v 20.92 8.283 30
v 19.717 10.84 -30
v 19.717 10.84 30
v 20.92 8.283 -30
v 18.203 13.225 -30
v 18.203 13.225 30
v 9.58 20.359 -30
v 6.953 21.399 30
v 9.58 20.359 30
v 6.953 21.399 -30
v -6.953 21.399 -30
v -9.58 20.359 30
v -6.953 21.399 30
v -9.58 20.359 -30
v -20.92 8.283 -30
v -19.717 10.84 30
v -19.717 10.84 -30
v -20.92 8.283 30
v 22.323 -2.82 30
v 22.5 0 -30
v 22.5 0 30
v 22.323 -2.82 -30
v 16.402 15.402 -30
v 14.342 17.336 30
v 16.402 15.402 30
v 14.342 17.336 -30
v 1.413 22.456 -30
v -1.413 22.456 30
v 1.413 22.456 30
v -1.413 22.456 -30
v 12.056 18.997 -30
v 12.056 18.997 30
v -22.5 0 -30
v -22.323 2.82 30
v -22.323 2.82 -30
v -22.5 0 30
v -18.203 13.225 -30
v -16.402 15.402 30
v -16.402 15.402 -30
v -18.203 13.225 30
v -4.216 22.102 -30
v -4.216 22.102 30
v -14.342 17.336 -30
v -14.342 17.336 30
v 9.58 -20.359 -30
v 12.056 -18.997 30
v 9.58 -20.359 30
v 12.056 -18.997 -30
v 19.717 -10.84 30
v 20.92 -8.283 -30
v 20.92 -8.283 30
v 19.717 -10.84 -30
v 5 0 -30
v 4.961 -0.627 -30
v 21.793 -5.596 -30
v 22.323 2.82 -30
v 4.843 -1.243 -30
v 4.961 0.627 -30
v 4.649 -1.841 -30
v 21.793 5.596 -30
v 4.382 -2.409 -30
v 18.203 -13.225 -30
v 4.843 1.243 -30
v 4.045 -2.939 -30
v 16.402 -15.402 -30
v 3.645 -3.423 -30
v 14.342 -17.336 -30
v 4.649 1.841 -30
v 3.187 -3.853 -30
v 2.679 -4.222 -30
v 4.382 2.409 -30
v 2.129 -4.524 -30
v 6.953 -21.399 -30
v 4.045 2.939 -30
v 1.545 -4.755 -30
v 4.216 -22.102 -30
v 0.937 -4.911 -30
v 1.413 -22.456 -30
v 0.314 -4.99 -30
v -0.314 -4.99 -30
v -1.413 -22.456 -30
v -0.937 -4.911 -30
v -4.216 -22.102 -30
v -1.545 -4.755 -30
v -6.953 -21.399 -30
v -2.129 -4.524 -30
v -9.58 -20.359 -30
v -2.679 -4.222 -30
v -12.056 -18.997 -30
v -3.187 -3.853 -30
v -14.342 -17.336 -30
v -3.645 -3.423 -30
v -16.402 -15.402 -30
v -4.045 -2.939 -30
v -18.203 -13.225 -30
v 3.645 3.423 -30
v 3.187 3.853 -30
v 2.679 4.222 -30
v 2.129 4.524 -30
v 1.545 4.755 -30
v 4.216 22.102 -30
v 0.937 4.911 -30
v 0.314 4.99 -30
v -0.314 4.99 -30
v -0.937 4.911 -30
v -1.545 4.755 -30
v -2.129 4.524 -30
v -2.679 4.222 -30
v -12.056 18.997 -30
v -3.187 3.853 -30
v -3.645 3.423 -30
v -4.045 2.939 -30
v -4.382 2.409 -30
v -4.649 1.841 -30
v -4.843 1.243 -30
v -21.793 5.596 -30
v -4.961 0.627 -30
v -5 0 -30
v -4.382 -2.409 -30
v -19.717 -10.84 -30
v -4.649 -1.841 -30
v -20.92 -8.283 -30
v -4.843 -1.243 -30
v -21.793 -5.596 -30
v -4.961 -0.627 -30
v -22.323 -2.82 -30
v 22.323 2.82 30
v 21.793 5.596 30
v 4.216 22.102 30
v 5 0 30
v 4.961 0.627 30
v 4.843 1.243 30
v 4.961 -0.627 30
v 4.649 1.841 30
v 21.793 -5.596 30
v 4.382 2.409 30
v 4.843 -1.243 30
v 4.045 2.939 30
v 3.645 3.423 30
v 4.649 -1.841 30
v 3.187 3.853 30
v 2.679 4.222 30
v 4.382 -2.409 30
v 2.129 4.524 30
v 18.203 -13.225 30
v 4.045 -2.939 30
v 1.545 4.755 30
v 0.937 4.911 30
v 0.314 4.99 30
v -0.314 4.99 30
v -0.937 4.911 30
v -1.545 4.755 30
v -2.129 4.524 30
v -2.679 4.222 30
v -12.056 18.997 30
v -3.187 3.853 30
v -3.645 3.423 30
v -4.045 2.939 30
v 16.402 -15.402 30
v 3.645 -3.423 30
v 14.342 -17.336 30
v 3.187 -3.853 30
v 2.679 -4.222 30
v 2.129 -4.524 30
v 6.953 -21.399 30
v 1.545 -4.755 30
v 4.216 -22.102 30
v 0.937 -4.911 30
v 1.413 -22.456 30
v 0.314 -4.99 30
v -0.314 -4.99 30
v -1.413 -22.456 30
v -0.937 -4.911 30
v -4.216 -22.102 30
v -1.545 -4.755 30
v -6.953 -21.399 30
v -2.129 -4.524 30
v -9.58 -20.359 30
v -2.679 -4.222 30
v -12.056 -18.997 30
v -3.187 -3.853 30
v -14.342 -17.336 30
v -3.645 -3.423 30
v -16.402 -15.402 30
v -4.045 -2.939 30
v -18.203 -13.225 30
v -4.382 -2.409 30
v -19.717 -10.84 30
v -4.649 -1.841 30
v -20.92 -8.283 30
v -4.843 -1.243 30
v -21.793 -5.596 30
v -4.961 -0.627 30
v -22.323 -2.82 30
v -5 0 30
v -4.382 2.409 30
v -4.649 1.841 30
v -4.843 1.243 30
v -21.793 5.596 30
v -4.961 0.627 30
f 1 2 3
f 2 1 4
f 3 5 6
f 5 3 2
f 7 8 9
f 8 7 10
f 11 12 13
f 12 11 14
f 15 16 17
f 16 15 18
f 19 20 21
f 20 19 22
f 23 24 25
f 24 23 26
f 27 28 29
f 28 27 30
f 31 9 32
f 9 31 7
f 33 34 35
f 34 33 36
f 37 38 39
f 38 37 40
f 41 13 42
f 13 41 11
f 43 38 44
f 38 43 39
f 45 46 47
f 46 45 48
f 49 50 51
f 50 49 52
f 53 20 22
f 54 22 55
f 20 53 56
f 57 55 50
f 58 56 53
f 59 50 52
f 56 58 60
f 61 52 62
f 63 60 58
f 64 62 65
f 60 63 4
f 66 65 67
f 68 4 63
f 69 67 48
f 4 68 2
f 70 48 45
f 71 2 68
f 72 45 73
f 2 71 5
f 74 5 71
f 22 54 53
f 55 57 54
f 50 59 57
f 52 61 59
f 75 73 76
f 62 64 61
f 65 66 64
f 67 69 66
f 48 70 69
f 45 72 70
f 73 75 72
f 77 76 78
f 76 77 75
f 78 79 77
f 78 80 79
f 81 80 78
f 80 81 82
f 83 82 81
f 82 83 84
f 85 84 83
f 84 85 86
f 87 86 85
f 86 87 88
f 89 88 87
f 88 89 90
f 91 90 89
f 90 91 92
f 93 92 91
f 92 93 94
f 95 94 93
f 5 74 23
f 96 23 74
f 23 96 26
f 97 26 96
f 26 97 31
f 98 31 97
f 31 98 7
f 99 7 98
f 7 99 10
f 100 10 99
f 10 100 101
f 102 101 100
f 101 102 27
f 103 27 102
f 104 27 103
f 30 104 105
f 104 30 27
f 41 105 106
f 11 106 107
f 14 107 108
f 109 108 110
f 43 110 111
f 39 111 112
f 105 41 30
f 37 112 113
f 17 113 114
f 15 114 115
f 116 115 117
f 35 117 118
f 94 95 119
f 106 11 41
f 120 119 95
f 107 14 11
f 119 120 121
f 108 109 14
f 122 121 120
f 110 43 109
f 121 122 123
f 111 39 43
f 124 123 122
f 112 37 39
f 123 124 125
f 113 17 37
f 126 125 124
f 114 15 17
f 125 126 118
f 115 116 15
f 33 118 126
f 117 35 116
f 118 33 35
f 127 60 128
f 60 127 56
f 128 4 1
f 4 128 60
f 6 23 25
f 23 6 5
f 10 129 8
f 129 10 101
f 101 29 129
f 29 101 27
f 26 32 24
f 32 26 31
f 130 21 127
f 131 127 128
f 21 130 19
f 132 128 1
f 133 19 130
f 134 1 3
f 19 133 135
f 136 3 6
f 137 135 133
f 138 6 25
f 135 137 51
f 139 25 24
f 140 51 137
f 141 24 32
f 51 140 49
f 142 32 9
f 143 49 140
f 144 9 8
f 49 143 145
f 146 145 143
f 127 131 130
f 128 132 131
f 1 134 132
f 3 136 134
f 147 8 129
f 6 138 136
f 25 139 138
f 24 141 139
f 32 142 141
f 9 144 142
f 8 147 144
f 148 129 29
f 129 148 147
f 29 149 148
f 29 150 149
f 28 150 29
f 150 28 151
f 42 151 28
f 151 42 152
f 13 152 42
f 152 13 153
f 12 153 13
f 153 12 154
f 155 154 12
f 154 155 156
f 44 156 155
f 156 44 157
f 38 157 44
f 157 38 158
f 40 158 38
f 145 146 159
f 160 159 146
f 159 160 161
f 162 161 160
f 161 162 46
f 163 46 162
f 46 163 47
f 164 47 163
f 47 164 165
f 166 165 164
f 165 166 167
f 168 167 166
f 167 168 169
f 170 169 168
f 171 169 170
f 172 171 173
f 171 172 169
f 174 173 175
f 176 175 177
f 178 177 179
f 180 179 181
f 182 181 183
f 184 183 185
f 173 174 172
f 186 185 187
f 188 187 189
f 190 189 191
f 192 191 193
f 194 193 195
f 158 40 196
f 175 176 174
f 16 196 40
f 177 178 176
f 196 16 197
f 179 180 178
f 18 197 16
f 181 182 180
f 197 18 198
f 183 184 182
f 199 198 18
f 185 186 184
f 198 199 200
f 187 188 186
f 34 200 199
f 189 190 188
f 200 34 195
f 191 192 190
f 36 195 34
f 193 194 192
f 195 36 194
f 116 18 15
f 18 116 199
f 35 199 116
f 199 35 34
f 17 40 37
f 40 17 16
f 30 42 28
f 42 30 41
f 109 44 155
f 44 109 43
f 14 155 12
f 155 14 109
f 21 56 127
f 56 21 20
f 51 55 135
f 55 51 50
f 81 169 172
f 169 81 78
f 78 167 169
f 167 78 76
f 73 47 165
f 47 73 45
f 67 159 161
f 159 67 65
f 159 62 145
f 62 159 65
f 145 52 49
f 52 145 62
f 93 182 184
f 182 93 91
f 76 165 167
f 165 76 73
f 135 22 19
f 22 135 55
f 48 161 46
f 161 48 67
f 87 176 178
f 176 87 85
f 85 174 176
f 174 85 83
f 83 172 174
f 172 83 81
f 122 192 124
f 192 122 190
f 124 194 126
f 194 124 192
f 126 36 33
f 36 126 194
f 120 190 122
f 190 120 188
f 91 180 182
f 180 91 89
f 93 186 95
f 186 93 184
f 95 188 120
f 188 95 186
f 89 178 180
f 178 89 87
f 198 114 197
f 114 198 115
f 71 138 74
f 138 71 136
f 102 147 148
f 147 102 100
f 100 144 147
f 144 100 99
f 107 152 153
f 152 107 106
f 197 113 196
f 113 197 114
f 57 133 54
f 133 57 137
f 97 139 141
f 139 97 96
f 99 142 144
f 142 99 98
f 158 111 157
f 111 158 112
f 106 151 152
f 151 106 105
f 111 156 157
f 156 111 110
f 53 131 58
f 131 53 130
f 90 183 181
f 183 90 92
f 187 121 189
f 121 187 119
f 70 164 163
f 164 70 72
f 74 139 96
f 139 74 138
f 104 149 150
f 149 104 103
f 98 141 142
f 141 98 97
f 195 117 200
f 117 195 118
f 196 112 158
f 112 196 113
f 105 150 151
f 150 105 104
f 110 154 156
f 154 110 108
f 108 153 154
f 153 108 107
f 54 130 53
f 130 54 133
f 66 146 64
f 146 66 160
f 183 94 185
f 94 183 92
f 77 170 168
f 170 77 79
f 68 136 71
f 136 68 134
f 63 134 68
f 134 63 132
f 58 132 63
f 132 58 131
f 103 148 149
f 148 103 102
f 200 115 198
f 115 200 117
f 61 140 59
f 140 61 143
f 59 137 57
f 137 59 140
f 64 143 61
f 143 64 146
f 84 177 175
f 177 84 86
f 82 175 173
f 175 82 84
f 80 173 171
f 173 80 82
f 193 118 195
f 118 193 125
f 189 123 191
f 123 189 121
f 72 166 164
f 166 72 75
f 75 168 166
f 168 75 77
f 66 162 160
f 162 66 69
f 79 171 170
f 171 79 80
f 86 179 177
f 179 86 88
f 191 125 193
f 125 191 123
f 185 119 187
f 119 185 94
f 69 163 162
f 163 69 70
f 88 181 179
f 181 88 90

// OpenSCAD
$fn = 50;


difference() {
	union() {
		translate(v = [0, 0, -30.0000000000]) {
			cylinder(h = 60, r = 22.5000000000);
		}
	}
	union() {
		translate(v = [0, 0, -100.0000000000]) {
			cylinder(h = 200, r = 5);
		}
	}
}
